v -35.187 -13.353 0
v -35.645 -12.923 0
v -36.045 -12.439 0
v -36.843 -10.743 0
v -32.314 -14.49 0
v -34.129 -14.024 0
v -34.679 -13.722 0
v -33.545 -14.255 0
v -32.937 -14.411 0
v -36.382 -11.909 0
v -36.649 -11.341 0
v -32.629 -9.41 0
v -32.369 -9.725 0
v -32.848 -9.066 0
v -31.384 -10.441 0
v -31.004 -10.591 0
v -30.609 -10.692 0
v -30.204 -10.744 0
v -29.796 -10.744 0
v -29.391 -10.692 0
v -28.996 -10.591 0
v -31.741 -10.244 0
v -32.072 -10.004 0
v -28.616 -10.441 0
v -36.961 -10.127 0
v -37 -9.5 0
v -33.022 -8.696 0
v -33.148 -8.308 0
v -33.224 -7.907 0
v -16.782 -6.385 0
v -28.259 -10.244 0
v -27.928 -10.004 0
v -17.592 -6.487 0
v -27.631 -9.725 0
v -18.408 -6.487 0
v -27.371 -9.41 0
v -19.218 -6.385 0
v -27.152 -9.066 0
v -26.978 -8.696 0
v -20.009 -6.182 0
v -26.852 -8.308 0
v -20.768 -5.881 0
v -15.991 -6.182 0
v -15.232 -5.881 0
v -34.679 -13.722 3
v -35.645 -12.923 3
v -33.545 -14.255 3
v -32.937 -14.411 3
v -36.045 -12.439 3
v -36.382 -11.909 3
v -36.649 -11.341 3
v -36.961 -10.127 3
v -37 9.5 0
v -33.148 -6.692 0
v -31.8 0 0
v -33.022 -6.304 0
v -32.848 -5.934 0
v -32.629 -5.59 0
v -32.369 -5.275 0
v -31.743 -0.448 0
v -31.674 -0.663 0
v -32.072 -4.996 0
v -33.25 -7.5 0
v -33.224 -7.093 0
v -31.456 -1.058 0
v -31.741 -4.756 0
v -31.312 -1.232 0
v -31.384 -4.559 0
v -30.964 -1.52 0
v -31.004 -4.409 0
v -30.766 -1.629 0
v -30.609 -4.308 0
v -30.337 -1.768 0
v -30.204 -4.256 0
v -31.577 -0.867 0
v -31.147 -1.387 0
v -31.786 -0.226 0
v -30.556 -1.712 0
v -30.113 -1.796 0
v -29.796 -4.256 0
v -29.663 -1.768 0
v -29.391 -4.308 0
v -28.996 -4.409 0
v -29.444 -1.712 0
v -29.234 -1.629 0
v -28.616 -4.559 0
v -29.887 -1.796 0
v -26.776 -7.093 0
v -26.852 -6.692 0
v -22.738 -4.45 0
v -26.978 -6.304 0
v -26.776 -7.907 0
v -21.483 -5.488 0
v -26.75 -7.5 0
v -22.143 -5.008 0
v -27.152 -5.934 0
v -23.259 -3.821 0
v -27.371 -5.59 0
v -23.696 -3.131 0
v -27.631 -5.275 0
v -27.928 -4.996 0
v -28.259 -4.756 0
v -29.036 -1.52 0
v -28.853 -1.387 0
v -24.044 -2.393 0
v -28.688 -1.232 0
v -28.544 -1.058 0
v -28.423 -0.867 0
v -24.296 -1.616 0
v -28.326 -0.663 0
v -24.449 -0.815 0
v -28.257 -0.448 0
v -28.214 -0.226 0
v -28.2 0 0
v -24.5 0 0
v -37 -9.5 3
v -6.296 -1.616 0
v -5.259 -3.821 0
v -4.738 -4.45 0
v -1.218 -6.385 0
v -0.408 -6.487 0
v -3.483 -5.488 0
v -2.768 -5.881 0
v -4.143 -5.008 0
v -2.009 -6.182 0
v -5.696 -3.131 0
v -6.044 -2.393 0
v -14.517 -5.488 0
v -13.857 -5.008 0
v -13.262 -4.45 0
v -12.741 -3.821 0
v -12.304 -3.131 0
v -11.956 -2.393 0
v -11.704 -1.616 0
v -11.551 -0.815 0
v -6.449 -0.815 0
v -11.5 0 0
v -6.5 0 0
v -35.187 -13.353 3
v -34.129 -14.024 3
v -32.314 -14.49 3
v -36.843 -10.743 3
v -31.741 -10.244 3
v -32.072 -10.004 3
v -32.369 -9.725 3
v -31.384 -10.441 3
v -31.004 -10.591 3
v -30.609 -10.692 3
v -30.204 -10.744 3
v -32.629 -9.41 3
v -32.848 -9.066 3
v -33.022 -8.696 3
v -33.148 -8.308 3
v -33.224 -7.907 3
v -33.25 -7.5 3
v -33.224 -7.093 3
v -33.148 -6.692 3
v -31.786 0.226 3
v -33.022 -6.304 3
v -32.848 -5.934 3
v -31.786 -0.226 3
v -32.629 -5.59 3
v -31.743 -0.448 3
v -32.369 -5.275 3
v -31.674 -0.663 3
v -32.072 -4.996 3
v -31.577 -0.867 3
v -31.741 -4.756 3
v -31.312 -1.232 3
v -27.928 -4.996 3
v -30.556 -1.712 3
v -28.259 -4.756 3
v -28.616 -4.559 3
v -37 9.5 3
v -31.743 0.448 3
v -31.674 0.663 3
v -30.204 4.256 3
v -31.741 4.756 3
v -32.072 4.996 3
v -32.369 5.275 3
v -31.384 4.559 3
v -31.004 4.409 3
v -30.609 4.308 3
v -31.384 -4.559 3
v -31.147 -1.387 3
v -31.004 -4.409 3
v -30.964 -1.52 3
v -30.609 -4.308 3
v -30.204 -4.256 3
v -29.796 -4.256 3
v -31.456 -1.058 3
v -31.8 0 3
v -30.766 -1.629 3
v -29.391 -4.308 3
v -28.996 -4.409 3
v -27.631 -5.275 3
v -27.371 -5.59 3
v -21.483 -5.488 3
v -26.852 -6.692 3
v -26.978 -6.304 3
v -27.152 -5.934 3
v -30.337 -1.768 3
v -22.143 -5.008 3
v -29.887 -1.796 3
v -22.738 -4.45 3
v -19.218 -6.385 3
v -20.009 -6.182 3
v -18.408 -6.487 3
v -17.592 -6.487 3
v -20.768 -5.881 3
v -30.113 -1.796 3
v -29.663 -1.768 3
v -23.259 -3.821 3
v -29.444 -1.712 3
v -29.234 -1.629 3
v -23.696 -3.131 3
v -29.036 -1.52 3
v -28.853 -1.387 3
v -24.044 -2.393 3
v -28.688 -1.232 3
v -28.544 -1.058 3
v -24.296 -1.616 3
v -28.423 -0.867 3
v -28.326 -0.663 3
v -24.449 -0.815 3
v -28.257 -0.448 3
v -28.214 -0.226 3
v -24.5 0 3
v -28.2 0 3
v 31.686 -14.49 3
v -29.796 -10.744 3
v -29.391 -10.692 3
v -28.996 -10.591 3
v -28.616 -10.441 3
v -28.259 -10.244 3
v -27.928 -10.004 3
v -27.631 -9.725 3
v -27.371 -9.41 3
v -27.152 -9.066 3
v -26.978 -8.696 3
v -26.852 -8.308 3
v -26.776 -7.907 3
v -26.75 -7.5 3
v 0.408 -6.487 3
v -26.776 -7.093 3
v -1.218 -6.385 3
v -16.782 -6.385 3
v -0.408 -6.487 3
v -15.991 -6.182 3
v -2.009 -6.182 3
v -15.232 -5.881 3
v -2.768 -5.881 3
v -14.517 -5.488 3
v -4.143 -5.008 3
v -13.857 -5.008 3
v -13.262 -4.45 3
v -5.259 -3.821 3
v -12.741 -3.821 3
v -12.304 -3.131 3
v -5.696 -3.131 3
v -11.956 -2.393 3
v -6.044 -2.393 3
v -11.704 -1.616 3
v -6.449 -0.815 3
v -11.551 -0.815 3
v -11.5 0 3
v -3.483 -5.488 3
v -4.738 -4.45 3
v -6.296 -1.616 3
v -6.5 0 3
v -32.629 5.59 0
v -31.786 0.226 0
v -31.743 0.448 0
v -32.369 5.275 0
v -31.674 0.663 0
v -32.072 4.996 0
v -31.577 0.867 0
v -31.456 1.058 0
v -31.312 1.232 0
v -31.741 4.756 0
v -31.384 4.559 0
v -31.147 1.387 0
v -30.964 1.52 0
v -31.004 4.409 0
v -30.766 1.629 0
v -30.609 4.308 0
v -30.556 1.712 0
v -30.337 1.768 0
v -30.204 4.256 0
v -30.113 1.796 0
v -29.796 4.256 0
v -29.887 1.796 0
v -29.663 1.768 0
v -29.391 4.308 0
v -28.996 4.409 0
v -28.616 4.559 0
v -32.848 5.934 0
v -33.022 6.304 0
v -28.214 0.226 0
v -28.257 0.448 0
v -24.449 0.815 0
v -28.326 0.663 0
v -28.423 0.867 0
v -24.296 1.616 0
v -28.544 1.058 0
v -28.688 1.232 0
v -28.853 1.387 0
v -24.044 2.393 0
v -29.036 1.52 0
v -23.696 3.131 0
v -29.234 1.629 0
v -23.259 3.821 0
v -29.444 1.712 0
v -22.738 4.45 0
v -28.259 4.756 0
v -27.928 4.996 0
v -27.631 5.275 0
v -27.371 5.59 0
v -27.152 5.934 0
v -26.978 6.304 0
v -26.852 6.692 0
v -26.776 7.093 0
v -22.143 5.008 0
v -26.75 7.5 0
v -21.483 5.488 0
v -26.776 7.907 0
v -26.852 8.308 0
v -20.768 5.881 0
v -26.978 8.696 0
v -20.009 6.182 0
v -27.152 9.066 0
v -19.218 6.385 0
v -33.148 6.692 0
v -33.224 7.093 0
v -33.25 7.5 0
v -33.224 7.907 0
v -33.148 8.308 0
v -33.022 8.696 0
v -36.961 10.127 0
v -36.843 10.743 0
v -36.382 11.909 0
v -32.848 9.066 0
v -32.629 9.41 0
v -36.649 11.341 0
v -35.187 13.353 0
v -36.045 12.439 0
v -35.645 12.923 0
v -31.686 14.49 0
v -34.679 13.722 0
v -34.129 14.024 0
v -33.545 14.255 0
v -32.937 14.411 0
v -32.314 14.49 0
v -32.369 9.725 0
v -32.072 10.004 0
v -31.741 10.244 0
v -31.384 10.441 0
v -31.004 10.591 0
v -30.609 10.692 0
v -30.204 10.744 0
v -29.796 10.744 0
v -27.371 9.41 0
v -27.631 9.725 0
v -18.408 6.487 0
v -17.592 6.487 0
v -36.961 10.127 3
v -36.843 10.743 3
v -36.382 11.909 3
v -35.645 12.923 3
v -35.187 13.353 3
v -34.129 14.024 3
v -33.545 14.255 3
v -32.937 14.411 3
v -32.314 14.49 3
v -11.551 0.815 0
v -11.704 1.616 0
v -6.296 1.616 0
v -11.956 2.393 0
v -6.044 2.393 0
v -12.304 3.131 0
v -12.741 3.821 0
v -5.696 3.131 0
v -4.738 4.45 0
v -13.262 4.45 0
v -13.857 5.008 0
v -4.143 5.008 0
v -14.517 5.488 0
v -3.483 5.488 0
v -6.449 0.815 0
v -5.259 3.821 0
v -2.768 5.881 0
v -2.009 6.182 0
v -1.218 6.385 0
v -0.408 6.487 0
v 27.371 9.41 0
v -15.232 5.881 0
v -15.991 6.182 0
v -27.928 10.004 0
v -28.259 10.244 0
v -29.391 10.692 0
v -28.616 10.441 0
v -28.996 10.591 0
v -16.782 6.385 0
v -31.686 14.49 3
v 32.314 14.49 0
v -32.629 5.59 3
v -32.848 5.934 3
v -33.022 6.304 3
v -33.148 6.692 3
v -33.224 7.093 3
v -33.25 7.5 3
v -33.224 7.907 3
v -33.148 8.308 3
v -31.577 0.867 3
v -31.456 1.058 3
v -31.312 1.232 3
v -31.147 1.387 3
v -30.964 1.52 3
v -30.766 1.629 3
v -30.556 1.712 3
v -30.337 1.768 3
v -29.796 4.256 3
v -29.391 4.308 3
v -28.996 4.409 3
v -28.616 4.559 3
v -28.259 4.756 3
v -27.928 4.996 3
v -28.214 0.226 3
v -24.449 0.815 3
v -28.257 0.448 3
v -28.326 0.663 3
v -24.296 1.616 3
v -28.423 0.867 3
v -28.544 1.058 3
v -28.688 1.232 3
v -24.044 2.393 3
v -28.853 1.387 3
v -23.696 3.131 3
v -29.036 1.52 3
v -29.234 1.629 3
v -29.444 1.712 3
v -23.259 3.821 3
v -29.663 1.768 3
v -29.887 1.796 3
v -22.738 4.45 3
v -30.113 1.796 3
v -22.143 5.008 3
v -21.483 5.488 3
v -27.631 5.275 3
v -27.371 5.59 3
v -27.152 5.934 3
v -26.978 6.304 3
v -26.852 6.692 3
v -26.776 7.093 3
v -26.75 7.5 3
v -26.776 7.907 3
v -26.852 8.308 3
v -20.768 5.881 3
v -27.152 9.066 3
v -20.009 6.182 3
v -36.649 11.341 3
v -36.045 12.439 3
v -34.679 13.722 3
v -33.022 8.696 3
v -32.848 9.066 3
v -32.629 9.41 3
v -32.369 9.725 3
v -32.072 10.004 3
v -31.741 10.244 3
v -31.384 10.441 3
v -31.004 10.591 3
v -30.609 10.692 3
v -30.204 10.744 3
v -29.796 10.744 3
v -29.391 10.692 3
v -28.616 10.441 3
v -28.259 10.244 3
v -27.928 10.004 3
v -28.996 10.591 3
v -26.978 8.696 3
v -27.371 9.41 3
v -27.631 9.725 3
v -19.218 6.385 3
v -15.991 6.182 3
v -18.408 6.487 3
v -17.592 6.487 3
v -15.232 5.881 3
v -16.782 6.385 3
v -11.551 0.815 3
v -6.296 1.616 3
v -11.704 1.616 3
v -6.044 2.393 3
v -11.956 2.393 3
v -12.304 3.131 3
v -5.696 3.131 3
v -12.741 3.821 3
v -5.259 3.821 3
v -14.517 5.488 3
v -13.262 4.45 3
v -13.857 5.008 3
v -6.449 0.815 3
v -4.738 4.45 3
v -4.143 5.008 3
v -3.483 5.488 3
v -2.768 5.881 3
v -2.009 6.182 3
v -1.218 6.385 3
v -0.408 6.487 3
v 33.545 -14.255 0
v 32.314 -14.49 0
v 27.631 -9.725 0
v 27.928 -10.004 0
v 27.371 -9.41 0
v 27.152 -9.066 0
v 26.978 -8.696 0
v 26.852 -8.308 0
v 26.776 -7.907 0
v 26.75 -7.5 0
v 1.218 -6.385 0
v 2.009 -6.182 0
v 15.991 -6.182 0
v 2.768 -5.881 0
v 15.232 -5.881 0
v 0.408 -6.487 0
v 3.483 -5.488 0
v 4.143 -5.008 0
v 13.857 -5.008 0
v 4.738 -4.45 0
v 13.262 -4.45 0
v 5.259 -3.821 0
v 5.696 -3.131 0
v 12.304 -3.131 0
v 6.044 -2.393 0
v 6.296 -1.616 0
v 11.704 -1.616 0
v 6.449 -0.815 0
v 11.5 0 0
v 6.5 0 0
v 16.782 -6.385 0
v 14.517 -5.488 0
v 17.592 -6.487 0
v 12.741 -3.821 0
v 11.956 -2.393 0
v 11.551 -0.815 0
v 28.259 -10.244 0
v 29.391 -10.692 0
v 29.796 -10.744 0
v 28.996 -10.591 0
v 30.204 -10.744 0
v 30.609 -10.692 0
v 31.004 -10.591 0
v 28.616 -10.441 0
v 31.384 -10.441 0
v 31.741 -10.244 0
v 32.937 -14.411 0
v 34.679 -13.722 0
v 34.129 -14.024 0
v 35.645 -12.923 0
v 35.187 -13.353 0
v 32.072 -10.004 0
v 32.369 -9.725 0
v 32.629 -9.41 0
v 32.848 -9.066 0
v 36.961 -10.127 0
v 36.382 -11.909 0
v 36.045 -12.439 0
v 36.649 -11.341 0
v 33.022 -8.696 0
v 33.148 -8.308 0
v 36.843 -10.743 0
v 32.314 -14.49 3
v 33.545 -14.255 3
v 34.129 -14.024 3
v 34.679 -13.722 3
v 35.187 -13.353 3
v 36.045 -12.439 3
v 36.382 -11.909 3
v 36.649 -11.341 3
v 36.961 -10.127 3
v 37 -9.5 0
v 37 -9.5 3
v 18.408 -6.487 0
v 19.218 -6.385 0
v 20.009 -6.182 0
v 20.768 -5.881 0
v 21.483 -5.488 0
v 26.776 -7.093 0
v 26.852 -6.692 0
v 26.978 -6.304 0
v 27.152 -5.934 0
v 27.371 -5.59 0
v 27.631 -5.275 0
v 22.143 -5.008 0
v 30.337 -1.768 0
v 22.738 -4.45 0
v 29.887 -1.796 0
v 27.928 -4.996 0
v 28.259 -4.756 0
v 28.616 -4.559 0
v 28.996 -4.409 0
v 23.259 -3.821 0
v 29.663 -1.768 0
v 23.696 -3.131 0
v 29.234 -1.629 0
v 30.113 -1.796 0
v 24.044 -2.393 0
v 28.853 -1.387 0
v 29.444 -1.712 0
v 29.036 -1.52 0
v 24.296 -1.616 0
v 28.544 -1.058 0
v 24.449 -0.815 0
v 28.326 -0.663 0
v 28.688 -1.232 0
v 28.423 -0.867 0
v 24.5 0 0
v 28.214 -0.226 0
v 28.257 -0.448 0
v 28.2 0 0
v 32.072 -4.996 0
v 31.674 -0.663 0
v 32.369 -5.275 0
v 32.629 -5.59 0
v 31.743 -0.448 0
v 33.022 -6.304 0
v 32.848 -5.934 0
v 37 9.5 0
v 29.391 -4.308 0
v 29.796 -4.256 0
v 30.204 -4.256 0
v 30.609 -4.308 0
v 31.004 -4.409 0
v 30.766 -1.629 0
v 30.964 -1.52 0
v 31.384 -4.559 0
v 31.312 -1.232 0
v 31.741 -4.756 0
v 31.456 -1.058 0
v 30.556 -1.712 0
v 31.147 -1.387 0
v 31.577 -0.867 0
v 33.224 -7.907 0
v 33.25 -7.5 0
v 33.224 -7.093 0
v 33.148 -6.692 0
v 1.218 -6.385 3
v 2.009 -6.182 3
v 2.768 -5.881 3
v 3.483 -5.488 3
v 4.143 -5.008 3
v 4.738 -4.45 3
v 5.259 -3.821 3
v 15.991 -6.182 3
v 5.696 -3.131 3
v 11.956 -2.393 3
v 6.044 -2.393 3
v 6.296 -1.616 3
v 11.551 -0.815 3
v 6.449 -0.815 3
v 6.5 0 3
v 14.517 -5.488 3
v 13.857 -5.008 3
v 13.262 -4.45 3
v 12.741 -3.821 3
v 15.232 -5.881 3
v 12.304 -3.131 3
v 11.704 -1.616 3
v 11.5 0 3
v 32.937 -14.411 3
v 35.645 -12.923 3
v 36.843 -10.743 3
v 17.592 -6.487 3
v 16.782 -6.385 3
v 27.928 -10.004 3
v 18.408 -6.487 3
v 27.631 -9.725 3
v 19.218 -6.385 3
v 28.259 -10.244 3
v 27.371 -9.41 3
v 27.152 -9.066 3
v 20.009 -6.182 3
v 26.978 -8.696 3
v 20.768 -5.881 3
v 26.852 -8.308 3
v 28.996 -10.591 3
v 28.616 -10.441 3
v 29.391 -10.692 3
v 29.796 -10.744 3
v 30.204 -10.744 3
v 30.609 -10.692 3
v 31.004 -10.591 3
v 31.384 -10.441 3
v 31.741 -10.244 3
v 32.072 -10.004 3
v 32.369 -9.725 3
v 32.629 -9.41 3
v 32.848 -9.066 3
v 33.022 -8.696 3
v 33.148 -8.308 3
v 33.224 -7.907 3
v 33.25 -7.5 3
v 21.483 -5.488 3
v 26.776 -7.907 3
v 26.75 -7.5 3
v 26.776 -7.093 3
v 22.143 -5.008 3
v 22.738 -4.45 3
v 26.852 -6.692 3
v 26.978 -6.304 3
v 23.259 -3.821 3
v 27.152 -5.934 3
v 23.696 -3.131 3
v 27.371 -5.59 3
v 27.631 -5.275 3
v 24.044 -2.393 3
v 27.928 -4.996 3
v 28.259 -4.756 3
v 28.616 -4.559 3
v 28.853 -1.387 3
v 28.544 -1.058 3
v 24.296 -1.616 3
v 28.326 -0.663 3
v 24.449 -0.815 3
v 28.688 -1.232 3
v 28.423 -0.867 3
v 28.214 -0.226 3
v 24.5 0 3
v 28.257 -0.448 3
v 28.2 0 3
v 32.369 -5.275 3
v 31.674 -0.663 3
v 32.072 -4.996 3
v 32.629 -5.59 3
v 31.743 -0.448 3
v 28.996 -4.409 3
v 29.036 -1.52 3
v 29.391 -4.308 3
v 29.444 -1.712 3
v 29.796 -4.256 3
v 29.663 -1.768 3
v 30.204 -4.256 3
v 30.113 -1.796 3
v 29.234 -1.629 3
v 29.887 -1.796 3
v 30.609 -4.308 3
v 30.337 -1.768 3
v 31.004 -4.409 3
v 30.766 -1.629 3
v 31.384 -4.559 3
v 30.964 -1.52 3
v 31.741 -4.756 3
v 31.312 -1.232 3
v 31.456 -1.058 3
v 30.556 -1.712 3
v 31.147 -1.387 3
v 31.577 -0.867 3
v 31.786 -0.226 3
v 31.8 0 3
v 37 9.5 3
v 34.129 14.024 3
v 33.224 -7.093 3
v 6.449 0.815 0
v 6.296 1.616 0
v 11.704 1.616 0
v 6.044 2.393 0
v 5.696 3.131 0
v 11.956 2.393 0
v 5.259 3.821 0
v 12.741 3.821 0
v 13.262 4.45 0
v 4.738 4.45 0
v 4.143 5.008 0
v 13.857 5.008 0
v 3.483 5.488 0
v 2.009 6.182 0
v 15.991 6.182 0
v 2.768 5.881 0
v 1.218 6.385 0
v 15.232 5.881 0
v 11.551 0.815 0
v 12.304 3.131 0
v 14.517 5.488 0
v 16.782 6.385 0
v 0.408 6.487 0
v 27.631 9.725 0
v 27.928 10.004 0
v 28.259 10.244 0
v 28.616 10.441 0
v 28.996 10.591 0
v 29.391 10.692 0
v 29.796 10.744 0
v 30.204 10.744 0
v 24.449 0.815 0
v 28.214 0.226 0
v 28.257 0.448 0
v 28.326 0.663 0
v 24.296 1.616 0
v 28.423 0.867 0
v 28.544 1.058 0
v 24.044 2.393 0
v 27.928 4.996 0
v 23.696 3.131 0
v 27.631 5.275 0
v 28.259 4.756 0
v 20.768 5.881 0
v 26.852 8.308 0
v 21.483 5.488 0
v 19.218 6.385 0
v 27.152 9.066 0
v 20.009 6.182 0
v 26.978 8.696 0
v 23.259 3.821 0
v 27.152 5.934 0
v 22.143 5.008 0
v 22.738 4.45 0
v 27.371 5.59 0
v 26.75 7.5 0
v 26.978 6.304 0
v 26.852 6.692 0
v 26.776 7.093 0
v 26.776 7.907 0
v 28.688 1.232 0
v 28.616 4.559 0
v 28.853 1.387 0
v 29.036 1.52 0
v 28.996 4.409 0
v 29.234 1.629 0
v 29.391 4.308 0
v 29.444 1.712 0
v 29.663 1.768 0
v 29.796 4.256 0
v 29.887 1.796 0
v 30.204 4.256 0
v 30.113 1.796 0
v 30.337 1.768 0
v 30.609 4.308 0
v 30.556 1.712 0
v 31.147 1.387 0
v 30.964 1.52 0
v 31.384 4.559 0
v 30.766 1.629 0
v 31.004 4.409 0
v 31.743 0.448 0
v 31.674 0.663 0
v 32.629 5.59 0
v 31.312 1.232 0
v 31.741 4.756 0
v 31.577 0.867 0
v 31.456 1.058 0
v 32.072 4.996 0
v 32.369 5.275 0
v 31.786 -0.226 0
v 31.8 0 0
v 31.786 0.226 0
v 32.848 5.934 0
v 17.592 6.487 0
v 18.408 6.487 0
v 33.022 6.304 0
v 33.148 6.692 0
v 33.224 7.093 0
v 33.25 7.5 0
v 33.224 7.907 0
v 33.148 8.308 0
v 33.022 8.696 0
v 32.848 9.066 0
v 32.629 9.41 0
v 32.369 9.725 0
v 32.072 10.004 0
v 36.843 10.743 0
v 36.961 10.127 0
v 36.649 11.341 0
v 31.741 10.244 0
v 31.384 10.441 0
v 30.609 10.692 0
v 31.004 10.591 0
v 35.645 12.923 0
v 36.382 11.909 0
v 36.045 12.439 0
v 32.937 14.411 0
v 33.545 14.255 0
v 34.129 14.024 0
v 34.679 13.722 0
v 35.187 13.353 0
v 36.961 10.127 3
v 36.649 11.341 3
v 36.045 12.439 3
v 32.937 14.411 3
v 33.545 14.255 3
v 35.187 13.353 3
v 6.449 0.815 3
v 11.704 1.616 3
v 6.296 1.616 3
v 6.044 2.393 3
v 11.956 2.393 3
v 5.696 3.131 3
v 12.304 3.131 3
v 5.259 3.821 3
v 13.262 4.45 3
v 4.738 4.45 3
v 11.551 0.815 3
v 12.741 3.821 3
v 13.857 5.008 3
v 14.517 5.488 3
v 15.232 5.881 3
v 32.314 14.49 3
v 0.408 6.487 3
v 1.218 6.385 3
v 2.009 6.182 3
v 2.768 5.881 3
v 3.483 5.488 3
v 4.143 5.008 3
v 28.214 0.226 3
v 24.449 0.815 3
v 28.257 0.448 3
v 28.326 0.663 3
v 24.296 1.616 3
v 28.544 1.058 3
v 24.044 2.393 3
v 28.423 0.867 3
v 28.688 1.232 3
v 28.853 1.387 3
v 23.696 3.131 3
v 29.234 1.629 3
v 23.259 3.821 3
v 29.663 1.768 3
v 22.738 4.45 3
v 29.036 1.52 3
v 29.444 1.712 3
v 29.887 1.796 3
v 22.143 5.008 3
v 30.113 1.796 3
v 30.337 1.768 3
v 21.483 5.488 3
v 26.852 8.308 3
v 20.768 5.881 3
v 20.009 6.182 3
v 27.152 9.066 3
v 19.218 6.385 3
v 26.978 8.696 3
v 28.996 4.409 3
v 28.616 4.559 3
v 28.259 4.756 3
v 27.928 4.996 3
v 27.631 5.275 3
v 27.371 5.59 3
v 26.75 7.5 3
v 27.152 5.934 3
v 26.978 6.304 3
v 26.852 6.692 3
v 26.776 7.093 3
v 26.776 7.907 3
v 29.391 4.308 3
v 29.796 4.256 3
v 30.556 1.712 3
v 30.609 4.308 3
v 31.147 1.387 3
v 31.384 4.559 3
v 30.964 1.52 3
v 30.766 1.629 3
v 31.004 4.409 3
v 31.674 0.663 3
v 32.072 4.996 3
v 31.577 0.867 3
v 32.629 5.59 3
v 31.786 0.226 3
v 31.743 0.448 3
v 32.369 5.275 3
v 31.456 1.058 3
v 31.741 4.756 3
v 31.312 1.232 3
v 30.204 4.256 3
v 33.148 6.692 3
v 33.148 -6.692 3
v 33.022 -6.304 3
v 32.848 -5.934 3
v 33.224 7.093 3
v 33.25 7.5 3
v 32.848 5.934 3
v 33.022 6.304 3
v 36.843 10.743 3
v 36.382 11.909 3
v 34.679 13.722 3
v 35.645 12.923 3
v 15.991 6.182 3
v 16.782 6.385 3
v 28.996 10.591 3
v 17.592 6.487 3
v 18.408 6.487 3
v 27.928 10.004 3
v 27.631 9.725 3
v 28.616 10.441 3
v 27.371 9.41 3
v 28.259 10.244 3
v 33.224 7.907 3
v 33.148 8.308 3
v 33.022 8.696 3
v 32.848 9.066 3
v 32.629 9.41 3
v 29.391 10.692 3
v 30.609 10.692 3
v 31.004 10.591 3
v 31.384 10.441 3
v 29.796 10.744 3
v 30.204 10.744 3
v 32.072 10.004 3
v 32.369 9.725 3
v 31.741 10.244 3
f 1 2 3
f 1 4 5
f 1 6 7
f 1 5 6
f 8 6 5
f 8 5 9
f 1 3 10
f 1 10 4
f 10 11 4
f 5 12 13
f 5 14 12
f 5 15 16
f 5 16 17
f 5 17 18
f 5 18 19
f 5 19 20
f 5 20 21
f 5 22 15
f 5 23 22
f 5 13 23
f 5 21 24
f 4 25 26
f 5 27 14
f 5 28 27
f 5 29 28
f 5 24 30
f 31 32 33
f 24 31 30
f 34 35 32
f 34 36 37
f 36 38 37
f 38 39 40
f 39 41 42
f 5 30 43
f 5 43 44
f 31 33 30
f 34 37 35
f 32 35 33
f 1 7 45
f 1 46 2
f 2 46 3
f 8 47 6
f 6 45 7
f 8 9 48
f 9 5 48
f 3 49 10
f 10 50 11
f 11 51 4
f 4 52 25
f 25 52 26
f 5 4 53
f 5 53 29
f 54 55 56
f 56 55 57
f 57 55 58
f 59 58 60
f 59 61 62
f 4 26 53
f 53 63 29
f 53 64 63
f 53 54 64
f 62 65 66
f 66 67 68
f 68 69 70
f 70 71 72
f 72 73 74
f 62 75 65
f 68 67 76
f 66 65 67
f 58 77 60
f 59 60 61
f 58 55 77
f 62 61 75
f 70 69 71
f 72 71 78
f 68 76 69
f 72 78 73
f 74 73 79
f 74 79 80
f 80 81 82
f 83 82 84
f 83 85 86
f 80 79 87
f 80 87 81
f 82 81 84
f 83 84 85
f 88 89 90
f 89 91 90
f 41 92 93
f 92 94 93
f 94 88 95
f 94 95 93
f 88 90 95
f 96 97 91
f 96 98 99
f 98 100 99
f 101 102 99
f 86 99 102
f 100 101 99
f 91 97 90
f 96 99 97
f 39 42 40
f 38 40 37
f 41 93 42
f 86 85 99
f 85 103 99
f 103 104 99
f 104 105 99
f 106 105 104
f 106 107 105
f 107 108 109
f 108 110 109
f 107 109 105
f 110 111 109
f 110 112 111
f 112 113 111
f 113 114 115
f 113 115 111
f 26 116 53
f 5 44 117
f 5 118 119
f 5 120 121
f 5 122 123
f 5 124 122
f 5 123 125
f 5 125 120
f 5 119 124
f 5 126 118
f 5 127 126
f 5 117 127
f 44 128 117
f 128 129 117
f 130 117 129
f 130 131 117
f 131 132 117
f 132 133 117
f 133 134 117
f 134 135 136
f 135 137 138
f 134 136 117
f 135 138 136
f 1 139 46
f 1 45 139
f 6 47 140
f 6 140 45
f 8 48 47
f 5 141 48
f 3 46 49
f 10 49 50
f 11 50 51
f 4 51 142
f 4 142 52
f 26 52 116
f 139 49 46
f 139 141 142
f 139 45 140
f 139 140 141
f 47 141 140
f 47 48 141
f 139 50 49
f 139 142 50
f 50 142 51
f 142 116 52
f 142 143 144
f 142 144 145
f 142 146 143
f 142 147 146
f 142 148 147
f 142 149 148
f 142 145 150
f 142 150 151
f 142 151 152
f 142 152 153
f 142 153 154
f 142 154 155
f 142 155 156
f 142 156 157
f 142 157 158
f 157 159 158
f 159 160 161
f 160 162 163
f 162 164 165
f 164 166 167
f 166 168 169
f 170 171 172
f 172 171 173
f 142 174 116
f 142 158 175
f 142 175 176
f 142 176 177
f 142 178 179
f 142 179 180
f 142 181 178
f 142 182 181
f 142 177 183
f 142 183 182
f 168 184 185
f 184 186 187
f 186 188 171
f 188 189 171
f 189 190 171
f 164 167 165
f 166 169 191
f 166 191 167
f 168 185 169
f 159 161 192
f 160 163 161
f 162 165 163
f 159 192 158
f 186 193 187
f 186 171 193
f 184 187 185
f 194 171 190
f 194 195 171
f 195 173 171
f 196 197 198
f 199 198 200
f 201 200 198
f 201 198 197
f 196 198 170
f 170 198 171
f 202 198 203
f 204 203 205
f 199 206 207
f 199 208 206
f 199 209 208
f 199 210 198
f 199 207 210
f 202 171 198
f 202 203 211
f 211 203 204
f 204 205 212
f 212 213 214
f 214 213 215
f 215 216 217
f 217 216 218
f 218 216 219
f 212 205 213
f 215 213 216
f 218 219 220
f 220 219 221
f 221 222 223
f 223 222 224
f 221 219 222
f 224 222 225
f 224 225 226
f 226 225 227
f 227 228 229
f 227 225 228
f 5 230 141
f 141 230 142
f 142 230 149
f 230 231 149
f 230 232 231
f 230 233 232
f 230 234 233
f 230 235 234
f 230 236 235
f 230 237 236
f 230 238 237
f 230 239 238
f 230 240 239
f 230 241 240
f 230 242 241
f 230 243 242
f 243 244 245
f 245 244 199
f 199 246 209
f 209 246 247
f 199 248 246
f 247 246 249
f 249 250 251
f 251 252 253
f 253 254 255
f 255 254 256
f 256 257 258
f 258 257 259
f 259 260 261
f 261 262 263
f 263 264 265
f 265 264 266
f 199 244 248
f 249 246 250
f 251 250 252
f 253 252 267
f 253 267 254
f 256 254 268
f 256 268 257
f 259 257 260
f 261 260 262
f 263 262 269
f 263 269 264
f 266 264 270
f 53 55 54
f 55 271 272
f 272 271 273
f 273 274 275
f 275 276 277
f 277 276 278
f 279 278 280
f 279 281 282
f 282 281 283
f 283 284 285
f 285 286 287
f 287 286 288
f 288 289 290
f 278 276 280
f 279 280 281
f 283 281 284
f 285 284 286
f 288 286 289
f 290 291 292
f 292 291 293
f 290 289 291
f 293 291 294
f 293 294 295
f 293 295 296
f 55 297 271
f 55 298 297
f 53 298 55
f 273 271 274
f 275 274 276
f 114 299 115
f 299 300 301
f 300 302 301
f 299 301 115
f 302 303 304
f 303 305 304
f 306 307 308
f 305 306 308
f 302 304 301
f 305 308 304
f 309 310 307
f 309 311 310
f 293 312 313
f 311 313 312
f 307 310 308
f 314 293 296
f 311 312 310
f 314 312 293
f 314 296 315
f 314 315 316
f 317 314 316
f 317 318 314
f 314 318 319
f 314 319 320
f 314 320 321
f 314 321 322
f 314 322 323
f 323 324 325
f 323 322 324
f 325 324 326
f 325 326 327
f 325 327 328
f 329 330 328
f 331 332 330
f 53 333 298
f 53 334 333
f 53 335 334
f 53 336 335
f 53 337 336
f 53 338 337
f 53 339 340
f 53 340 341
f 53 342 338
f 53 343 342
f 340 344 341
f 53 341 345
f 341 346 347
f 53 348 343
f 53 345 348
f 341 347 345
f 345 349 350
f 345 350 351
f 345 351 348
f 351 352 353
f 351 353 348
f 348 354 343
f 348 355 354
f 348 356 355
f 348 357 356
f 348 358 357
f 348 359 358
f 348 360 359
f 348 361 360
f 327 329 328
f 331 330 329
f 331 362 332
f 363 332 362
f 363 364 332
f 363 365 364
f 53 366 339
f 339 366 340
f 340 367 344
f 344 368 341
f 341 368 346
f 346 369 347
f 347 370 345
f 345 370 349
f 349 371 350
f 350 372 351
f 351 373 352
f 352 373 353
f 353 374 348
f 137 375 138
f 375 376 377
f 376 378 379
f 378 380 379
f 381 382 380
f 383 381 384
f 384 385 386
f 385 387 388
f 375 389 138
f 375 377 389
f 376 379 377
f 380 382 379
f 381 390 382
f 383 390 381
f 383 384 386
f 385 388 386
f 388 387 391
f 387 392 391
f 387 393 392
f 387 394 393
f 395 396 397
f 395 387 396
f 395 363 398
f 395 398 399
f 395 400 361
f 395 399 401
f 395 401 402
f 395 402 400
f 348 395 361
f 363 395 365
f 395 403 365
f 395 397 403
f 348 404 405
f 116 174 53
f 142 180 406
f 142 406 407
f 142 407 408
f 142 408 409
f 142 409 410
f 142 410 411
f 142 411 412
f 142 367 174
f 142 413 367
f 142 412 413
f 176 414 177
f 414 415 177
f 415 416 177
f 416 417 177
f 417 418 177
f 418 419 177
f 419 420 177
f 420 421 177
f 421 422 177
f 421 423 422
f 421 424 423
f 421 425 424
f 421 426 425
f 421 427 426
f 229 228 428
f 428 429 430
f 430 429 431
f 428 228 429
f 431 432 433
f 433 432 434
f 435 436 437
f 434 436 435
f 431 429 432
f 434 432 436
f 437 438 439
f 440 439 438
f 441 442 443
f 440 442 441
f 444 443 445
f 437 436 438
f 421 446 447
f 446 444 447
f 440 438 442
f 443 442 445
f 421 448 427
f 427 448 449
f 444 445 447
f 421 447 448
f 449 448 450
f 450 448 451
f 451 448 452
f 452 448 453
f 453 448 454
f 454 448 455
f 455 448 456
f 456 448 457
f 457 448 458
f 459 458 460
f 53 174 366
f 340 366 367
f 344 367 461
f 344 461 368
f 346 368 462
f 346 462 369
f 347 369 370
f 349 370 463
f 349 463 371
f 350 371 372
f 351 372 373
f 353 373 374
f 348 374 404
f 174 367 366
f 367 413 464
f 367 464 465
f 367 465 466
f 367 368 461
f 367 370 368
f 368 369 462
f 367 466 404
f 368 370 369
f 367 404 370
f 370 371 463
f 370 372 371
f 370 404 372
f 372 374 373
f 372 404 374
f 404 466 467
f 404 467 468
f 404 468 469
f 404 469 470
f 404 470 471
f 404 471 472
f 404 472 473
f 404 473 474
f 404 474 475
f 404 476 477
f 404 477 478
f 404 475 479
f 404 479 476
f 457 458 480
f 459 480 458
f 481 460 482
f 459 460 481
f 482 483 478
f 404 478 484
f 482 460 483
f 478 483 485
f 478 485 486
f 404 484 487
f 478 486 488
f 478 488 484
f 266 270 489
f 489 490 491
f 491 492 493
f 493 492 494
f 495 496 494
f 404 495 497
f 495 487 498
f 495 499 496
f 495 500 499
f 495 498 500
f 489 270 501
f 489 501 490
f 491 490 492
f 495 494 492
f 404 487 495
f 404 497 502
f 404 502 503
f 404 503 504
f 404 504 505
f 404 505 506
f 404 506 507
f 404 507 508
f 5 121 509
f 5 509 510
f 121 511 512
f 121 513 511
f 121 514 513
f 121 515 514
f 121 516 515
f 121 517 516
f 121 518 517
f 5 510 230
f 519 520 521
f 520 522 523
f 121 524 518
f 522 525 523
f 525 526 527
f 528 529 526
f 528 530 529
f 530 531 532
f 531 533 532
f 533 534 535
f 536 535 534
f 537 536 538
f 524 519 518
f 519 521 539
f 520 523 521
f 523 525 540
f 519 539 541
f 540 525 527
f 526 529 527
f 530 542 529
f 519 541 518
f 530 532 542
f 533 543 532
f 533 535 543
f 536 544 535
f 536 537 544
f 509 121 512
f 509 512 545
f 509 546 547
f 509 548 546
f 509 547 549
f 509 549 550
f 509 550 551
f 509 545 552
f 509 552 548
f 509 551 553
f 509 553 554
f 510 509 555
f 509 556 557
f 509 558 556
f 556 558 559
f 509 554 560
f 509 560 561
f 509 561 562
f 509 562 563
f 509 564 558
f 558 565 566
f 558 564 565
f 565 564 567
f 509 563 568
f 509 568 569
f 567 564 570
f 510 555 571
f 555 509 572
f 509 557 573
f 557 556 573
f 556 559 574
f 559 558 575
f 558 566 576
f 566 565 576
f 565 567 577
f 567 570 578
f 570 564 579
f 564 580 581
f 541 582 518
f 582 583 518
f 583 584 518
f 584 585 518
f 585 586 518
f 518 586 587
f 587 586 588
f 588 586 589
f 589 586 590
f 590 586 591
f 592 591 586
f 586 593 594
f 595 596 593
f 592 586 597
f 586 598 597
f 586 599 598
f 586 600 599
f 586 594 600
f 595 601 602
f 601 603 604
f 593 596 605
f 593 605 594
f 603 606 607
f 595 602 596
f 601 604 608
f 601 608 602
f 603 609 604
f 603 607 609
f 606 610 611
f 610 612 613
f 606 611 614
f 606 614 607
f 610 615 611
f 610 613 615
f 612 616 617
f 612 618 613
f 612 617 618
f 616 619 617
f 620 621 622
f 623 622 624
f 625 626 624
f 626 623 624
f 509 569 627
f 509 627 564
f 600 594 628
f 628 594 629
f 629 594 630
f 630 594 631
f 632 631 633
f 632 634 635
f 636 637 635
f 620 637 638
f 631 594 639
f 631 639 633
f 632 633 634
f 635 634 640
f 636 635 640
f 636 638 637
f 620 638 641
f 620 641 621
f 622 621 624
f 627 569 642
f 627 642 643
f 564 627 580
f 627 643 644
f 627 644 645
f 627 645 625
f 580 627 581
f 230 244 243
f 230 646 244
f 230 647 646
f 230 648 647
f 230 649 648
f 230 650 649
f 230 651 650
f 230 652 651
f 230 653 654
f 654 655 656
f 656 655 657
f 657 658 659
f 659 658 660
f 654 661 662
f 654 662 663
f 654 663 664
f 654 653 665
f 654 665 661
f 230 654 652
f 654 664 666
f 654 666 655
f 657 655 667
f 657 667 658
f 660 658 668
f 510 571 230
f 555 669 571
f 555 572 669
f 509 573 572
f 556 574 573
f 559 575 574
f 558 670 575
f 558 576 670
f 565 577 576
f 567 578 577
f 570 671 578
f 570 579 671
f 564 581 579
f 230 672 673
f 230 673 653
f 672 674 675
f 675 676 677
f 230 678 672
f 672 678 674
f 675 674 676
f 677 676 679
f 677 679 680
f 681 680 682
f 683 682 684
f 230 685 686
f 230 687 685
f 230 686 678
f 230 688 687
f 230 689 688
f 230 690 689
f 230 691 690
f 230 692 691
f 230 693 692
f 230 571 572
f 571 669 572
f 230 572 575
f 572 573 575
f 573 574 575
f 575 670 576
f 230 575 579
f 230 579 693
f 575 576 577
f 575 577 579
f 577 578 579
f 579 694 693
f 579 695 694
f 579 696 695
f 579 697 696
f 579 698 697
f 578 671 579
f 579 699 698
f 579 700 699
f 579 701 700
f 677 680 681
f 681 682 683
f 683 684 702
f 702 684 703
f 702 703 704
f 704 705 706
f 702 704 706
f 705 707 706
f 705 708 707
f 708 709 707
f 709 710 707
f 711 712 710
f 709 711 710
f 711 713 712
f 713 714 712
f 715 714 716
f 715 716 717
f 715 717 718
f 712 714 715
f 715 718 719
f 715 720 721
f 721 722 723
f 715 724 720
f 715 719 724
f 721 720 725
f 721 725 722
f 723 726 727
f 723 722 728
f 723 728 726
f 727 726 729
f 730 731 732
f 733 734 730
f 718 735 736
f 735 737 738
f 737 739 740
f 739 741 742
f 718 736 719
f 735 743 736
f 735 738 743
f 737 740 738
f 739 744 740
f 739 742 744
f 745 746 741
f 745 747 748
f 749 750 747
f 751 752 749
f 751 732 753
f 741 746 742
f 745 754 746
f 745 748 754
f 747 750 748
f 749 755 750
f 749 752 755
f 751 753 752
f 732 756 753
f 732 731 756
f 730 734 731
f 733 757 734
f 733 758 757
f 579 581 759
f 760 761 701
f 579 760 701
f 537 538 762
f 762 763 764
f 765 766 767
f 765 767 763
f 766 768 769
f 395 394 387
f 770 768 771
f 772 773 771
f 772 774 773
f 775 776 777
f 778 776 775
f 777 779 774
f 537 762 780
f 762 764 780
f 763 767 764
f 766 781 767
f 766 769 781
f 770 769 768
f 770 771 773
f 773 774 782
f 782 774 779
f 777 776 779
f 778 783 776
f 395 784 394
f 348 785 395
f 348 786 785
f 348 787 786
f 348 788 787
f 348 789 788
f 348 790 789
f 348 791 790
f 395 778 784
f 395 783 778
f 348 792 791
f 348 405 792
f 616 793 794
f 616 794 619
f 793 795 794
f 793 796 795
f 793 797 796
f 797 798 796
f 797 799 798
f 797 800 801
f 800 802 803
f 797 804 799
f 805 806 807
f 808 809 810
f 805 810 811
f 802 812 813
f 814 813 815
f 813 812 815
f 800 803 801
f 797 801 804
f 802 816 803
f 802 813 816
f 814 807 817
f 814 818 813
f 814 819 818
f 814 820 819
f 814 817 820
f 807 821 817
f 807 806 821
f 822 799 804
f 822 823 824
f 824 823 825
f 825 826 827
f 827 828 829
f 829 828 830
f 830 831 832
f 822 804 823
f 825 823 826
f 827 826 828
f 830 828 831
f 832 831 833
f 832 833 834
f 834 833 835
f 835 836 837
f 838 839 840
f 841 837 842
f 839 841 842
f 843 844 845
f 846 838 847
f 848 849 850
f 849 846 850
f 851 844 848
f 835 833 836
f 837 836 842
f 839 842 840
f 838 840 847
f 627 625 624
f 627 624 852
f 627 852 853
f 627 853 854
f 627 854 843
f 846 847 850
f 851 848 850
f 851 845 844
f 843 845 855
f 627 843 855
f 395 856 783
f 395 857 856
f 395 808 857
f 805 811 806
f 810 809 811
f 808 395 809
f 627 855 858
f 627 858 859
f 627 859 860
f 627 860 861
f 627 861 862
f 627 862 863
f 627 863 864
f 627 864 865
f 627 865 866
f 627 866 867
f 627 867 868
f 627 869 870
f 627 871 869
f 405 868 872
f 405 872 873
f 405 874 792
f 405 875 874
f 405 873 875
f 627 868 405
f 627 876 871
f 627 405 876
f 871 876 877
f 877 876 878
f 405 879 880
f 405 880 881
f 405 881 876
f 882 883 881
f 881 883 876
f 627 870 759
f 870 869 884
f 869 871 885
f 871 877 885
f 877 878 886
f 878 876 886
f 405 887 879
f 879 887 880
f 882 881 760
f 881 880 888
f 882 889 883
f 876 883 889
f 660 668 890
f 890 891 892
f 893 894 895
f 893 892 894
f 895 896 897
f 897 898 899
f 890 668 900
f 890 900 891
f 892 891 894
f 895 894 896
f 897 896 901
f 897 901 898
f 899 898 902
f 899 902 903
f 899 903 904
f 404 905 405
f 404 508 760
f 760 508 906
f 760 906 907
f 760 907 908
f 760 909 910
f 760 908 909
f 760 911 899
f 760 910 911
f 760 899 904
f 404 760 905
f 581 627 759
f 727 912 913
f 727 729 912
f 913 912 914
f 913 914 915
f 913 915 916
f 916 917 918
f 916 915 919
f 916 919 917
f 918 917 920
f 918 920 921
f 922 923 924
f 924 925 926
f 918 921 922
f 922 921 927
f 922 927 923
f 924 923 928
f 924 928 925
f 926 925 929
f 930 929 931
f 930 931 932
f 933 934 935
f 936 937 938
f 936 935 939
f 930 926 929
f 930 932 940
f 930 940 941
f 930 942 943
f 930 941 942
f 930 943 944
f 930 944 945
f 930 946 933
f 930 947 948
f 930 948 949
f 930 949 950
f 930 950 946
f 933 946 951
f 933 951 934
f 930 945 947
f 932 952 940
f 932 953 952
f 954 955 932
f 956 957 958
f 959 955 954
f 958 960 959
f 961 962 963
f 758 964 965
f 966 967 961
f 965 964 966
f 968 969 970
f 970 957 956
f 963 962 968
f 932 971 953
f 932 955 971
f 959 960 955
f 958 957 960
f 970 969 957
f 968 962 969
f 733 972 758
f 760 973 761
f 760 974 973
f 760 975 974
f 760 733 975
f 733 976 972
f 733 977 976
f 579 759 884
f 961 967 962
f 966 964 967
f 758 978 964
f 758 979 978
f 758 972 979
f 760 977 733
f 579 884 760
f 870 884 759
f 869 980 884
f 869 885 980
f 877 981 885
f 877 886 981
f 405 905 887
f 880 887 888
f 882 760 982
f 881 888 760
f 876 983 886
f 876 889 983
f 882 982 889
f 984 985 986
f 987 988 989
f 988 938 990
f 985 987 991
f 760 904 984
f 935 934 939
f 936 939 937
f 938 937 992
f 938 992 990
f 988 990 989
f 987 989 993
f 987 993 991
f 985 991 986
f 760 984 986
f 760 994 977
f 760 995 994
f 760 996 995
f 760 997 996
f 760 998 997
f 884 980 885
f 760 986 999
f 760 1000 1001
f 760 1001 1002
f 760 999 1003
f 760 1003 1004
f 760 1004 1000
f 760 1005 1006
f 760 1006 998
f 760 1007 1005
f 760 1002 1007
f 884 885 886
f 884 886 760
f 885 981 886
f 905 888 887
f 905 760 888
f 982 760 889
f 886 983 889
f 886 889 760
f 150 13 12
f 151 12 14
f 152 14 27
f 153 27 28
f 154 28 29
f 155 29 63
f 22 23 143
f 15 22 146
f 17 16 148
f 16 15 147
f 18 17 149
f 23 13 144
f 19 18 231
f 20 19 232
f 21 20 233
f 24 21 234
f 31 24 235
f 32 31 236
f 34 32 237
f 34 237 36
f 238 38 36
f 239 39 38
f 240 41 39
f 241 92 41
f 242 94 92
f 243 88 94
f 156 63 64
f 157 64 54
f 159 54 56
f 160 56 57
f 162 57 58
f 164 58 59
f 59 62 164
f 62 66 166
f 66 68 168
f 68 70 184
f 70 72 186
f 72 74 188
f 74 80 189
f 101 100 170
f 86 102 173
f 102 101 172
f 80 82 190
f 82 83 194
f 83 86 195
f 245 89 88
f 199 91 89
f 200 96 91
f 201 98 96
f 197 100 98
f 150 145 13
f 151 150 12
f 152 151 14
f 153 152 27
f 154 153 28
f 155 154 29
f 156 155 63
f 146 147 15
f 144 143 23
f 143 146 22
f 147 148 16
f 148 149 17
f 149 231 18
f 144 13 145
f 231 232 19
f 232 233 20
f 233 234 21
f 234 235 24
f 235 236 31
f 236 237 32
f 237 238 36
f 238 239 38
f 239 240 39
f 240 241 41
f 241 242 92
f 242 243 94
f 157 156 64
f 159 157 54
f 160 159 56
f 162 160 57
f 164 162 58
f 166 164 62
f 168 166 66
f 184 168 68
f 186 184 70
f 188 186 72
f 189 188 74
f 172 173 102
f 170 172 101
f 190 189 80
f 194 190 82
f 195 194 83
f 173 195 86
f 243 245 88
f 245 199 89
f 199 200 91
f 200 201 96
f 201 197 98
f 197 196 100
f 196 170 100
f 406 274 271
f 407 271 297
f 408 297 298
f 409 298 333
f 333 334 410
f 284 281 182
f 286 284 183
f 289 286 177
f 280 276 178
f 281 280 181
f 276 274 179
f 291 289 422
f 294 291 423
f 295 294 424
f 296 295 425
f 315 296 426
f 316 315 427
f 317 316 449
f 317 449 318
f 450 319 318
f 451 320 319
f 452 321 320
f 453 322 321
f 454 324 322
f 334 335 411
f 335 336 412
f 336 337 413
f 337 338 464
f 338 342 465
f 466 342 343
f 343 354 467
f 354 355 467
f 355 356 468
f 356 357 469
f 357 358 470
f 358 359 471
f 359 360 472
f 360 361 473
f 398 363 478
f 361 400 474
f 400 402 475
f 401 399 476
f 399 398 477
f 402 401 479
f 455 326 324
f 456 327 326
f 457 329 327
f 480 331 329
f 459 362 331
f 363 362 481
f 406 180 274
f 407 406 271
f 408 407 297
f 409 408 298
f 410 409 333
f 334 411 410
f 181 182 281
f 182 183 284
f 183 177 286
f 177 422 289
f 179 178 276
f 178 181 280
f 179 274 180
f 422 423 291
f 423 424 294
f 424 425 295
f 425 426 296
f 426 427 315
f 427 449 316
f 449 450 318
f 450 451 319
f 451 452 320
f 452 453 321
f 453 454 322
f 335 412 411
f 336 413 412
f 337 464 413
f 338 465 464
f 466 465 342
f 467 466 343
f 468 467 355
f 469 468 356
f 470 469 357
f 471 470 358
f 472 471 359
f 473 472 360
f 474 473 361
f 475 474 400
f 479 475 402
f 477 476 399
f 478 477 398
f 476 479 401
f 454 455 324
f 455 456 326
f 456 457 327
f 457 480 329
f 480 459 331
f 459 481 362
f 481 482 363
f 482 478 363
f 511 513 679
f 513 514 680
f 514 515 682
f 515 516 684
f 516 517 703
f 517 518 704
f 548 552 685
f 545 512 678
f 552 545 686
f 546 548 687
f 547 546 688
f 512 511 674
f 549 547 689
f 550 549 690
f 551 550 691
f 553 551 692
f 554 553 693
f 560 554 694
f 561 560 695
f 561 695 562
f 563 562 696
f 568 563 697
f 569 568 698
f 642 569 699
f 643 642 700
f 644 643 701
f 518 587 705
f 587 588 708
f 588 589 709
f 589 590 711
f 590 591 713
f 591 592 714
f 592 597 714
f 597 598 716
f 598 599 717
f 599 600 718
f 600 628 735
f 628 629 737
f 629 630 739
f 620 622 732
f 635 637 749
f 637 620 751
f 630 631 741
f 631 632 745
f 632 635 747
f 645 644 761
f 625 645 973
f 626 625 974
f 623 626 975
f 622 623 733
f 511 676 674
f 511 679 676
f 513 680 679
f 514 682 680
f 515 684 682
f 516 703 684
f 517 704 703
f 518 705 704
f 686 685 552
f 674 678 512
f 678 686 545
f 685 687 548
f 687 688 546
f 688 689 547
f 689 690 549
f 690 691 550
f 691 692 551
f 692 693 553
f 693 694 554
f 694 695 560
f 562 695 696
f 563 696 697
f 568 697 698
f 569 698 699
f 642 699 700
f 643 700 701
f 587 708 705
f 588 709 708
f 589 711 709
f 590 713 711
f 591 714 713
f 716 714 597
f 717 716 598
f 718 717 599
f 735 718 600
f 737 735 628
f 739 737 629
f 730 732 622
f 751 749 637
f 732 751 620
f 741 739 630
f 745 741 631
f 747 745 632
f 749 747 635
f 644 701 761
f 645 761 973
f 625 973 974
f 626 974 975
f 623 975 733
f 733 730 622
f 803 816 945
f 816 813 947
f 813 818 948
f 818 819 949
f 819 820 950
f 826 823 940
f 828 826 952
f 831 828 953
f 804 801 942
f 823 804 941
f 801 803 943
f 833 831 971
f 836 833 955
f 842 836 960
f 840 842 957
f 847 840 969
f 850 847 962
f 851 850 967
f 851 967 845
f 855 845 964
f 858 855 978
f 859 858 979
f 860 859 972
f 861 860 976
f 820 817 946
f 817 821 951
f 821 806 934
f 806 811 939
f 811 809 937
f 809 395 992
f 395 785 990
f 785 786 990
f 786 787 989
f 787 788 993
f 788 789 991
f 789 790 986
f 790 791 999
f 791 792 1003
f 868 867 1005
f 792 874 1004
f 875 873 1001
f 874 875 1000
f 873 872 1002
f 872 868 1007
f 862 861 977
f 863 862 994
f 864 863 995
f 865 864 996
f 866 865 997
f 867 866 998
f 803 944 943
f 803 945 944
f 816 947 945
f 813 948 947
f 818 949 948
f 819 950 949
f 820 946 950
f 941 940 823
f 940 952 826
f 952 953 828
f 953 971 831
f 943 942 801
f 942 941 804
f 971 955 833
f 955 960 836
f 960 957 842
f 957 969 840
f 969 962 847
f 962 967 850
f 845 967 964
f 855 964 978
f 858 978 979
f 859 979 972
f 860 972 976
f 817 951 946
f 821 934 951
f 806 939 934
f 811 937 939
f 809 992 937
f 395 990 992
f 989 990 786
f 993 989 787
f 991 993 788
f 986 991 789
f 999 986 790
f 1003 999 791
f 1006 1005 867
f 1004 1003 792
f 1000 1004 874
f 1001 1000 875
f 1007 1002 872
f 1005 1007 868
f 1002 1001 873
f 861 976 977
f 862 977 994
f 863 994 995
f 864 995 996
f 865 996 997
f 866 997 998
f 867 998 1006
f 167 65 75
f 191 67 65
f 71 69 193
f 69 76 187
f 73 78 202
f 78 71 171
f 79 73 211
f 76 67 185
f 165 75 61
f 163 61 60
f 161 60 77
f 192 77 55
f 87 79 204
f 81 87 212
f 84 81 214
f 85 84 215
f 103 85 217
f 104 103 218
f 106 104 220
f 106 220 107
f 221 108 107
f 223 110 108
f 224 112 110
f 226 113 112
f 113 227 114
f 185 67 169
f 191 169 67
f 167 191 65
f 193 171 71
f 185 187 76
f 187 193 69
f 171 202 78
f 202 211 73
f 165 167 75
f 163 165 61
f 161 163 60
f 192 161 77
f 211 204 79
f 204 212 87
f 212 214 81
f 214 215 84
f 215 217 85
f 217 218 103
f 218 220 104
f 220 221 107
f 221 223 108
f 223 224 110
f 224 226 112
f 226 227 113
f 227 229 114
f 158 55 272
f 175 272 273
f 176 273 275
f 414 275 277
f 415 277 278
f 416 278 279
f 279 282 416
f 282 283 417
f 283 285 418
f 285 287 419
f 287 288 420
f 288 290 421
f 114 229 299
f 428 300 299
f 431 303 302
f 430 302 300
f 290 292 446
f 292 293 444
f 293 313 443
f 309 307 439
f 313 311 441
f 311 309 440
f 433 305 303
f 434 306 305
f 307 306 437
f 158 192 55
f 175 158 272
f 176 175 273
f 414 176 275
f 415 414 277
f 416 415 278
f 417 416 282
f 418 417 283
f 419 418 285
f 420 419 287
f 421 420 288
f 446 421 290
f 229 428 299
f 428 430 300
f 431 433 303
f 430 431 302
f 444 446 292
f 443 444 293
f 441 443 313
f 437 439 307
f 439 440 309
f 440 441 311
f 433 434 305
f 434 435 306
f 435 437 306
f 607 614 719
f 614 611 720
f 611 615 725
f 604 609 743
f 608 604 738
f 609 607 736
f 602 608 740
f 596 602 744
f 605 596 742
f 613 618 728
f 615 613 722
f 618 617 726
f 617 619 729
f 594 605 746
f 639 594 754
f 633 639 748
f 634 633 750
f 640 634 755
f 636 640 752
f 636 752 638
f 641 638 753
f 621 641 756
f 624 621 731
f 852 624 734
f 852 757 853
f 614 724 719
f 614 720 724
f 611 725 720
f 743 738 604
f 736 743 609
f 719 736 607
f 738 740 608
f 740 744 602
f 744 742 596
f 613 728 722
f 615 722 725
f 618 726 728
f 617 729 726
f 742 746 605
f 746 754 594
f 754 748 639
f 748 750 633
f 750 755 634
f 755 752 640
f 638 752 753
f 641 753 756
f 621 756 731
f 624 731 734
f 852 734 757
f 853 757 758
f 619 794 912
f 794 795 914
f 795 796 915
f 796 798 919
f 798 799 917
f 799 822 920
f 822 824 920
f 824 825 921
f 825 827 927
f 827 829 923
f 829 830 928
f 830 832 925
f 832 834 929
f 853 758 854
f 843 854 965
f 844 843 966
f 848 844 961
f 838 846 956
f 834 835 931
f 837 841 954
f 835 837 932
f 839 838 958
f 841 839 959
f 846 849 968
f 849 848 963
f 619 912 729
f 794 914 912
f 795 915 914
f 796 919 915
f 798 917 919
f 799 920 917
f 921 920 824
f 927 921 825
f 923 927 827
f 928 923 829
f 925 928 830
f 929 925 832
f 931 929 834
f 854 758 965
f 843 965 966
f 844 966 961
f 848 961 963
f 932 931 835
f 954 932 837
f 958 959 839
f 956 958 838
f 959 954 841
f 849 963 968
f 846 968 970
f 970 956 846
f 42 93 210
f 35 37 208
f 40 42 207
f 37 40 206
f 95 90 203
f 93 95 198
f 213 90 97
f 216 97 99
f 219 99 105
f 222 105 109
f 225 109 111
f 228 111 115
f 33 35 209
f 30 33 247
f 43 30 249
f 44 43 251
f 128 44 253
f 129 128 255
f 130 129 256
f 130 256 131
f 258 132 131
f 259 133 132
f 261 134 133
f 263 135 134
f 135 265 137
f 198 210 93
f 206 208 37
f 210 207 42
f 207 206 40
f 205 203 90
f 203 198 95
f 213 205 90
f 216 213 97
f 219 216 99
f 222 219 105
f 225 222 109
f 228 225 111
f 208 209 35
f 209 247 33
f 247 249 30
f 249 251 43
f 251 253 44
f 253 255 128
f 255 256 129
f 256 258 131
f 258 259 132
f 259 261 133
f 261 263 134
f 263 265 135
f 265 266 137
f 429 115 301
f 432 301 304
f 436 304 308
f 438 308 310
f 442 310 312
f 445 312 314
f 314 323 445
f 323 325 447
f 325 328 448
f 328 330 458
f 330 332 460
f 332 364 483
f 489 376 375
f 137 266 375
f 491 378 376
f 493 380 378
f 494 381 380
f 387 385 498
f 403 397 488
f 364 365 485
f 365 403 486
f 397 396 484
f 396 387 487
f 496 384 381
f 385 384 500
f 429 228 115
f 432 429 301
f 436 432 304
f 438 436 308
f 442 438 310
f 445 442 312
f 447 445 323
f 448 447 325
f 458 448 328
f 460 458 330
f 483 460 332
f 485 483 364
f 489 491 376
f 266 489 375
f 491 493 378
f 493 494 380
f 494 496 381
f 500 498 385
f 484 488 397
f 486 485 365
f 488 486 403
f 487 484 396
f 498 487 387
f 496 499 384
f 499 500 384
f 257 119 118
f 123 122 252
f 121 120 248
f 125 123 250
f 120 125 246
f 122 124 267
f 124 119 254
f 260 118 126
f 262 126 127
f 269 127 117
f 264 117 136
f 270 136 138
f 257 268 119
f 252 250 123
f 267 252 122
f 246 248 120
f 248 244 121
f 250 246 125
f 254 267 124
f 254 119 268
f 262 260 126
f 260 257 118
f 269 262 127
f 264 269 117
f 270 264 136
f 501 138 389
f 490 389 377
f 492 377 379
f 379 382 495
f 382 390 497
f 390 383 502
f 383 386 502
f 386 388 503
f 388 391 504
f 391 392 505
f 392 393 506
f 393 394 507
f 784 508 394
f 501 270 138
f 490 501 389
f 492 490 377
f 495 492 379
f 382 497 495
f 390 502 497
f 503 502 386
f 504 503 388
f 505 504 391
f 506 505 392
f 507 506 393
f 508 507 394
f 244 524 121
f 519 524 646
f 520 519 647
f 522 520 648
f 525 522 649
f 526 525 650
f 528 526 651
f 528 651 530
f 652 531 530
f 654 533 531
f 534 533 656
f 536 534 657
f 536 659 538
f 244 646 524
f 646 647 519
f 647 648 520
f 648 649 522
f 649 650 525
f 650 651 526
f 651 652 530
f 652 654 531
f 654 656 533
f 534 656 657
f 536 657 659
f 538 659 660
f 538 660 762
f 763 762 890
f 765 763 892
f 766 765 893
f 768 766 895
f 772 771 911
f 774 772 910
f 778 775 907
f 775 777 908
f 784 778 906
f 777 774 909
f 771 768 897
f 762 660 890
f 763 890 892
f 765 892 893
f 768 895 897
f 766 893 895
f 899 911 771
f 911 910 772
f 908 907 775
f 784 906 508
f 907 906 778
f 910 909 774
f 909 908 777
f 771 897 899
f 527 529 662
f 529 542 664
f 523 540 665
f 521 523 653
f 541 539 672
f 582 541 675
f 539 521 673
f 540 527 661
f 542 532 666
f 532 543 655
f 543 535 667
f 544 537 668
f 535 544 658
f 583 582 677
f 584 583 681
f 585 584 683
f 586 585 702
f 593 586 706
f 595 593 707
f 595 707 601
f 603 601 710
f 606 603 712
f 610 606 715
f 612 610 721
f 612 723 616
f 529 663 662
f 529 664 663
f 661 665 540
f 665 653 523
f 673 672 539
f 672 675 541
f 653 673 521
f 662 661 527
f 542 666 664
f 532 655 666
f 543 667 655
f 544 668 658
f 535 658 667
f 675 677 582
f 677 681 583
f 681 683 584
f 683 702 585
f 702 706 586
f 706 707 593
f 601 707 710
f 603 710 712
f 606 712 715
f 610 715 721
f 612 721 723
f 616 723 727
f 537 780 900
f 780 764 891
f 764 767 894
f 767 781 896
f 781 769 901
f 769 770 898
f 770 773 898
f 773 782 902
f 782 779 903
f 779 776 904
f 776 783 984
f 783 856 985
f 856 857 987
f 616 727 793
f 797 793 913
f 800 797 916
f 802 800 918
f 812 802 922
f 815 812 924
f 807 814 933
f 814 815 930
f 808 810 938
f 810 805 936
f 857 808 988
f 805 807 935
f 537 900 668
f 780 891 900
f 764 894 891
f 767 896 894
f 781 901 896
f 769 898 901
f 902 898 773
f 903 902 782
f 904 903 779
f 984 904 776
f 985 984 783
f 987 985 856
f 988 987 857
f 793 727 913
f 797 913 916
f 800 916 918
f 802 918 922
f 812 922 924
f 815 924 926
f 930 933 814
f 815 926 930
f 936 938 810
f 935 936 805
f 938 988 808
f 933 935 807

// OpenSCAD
$fn = 50;

difference() {
	union() {
		hull() {
			translate(v = [-32.0, 9.5, 0]) {
				cylinder(h = 3, r = 5);
			}
			translate(v = [32.0, 9.5, 0]) {
				cylinder(h = 3, r = 5);
			}
			translate(v = [-32.0, -9.5, 0]) {
				cylinder(h = 3, r = 5);
			}
			translate(v = [32.0, -9.5, 0]) {
				cylinder(h = 3, r = 5);
			}
		}
	}
	union() {
		translate(v = [-30.0, -7.5, 0]) {
			cylinder(h = 3, r = 3.25);
		}
		translate(v = [-30.0, 7.5, 0]) {
			cylinder(h = 3, r = 3.25);
		}
		translate(v = [30.0, -7.5, 0]) {
			cylinder(h = 3, r = 3.25);
		}
		translate(v = [30.0, 7.5, 0]) {
			cylinder(h = 3, r = 3.25);
		}
		translate(v = [-30.0, 0.0, 0]) {
			cylinder(h = 3, r = 1.8);
		}
		translate(v = [30.0, 0.0, 0]) {
			cylinder(h = 3, r = 1.8);
		}
		translate(v = [-18.0, 0, 0.0]) {
			cylinder(h = 3, r = 6.5);
		}
		cylinder(h = 3, r = 6.5);
		translate(v = [18.0, 0, 0.0]) {
			cylinder(h = 3, r = 6.5);
		}
	}
}
